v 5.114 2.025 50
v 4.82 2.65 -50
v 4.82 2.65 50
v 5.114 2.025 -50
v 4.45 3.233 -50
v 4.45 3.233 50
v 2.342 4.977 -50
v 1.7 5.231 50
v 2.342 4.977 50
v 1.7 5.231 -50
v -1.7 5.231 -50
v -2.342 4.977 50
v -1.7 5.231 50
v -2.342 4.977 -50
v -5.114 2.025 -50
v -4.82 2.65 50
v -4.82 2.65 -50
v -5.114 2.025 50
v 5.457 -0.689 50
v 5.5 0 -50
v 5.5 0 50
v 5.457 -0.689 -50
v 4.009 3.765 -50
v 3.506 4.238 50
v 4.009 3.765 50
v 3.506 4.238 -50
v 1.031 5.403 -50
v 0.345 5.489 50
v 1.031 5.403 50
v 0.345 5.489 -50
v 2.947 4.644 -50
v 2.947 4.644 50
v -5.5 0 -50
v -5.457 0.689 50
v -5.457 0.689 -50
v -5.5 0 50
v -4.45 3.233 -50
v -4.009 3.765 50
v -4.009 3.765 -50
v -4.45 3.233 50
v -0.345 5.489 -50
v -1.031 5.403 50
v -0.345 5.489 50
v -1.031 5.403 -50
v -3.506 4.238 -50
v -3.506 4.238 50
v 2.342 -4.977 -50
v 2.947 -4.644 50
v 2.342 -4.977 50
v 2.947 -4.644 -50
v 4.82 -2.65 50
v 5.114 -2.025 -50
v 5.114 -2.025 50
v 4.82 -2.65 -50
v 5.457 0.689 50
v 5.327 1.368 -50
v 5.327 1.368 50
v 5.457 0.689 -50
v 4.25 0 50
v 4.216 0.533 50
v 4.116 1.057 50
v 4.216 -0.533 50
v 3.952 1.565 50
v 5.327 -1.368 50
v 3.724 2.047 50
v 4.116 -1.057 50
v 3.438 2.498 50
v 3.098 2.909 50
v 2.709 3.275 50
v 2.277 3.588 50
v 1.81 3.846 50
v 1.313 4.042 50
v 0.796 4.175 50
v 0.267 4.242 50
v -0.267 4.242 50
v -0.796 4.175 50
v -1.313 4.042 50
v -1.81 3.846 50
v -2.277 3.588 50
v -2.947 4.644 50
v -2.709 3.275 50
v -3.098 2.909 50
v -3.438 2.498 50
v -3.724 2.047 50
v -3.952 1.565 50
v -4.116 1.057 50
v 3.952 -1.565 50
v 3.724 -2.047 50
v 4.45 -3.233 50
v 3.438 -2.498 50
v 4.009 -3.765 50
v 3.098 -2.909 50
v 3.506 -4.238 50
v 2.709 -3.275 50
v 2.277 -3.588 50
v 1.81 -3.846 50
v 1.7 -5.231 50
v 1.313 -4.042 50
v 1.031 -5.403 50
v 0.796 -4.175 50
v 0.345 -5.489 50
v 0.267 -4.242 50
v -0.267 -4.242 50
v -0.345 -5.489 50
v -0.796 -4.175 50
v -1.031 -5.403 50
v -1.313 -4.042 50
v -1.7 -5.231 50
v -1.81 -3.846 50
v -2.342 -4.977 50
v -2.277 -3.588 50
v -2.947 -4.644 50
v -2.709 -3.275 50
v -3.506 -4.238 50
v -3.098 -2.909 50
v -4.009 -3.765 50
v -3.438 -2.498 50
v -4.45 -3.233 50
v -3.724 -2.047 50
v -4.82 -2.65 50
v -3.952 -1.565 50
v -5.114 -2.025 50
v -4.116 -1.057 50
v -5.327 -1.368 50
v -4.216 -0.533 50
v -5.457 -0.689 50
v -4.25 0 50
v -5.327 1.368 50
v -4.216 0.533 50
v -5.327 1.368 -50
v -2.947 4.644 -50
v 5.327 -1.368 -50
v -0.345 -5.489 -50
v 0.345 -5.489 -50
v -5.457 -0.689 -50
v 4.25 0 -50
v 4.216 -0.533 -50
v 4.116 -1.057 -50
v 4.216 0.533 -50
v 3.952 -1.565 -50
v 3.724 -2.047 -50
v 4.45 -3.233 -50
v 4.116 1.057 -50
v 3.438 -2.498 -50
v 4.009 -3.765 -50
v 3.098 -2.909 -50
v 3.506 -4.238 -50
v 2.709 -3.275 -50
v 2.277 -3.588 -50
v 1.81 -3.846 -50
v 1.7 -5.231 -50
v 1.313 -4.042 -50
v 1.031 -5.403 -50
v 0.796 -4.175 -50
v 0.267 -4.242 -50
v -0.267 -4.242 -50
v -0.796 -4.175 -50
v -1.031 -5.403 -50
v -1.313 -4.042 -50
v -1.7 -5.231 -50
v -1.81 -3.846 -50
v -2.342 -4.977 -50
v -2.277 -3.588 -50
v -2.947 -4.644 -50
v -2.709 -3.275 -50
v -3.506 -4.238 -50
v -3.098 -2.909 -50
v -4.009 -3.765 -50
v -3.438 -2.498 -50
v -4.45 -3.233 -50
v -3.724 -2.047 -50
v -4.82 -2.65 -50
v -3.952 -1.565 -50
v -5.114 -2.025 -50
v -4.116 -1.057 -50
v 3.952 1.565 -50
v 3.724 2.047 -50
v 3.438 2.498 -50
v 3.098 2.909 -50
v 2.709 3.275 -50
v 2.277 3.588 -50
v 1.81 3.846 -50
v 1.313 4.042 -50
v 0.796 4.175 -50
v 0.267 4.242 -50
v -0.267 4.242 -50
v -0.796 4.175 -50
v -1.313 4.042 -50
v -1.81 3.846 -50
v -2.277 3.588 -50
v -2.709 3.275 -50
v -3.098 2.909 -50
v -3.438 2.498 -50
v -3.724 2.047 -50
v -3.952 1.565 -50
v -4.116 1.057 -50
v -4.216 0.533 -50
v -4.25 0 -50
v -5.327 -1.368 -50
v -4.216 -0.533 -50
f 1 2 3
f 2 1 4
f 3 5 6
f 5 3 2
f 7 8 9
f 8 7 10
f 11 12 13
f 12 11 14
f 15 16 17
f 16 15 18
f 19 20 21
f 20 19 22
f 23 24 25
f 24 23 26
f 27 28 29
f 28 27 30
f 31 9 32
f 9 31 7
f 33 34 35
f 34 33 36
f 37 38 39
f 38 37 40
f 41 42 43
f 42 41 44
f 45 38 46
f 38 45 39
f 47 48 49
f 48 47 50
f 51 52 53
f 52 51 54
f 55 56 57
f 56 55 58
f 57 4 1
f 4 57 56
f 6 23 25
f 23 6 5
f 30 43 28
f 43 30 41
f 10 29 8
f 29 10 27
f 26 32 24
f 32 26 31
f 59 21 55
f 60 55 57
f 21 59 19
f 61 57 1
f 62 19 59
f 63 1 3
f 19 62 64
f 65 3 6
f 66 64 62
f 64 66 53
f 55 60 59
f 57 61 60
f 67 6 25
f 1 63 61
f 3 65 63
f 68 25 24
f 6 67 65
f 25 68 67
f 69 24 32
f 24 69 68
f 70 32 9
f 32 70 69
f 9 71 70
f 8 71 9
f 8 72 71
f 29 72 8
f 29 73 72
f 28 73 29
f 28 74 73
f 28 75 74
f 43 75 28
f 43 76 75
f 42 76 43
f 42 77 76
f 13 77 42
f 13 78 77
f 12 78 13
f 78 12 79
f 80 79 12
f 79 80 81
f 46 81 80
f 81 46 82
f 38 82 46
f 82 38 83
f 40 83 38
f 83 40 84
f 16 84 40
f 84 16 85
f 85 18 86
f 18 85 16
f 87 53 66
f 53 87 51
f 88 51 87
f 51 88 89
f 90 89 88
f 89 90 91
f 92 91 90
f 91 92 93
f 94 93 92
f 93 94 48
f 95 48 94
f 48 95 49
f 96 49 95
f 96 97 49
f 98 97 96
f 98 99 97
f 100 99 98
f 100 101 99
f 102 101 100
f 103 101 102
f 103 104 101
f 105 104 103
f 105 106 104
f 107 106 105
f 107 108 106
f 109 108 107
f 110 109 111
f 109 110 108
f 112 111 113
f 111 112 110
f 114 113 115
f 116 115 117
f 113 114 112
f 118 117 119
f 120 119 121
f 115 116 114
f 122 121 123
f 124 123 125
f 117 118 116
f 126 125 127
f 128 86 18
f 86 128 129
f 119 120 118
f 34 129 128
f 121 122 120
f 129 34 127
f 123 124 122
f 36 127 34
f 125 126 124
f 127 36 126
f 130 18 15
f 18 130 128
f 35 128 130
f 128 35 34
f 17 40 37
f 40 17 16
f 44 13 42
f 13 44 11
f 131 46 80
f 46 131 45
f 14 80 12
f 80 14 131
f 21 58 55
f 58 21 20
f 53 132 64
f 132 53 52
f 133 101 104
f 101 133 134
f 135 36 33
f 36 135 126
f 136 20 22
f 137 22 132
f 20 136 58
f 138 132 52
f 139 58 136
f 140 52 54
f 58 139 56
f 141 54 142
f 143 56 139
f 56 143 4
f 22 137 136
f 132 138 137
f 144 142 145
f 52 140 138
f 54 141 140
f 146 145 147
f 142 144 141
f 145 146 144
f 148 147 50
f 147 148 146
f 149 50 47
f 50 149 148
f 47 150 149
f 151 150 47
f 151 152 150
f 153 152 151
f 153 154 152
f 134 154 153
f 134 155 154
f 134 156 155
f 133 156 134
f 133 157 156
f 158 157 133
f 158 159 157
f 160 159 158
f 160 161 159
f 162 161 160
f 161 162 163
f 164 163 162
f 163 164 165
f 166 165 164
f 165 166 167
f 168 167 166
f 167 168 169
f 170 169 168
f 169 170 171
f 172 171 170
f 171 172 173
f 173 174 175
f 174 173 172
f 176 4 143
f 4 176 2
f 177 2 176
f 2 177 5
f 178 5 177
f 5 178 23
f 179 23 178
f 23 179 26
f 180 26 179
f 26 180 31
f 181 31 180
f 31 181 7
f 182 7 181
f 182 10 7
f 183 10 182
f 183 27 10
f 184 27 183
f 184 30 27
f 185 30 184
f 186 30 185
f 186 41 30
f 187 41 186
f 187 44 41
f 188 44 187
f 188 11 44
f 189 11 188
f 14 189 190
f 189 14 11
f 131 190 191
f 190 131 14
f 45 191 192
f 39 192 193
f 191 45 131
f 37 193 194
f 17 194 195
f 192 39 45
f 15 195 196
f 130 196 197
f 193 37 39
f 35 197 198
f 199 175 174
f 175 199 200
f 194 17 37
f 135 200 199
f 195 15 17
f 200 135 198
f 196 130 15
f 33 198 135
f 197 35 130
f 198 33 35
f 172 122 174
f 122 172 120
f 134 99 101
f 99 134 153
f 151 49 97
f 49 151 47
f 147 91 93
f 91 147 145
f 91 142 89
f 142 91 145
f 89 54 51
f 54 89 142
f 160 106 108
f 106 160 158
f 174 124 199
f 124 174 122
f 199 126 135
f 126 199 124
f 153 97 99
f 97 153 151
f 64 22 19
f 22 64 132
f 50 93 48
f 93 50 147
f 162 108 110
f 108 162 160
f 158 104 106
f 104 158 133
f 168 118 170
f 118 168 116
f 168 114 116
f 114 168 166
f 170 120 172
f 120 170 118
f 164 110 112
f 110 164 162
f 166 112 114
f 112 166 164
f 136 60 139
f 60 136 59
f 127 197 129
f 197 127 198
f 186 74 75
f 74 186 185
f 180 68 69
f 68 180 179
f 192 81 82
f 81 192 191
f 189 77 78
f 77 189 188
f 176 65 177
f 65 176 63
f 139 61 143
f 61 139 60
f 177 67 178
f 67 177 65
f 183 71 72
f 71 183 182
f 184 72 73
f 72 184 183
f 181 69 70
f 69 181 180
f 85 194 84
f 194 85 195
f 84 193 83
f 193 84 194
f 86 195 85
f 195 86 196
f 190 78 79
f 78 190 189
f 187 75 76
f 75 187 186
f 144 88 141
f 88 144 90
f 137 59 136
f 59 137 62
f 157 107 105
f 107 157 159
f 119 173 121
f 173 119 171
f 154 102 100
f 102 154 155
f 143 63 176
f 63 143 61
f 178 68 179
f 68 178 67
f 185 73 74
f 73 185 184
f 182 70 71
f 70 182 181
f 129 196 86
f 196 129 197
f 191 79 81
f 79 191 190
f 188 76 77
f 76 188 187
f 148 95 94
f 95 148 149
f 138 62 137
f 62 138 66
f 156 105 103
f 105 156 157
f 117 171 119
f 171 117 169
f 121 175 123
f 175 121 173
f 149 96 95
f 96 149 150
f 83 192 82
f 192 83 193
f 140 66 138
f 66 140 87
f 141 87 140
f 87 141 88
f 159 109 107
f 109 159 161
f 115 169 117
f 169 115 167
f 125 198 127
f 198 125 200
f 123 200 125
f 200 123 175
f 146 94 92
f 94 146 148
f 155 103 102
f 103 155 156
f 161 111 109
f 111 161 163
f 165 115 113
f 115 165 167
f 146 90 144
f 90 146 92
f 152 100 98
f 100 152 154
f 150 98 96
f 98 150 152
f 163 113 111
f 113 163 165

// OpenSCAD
$fn = 50;


difference() {
	union() {
		translate(v = [0, 0, -50.0000000000]) {
			cylinder(h = 100, r = 5.5000000000);
		}
	}
	union() {
		translate(v = [0, 0, -100.0000000000]) {
			cylinder(h = 200, r = 4.2500000000);
		}
	}
}
